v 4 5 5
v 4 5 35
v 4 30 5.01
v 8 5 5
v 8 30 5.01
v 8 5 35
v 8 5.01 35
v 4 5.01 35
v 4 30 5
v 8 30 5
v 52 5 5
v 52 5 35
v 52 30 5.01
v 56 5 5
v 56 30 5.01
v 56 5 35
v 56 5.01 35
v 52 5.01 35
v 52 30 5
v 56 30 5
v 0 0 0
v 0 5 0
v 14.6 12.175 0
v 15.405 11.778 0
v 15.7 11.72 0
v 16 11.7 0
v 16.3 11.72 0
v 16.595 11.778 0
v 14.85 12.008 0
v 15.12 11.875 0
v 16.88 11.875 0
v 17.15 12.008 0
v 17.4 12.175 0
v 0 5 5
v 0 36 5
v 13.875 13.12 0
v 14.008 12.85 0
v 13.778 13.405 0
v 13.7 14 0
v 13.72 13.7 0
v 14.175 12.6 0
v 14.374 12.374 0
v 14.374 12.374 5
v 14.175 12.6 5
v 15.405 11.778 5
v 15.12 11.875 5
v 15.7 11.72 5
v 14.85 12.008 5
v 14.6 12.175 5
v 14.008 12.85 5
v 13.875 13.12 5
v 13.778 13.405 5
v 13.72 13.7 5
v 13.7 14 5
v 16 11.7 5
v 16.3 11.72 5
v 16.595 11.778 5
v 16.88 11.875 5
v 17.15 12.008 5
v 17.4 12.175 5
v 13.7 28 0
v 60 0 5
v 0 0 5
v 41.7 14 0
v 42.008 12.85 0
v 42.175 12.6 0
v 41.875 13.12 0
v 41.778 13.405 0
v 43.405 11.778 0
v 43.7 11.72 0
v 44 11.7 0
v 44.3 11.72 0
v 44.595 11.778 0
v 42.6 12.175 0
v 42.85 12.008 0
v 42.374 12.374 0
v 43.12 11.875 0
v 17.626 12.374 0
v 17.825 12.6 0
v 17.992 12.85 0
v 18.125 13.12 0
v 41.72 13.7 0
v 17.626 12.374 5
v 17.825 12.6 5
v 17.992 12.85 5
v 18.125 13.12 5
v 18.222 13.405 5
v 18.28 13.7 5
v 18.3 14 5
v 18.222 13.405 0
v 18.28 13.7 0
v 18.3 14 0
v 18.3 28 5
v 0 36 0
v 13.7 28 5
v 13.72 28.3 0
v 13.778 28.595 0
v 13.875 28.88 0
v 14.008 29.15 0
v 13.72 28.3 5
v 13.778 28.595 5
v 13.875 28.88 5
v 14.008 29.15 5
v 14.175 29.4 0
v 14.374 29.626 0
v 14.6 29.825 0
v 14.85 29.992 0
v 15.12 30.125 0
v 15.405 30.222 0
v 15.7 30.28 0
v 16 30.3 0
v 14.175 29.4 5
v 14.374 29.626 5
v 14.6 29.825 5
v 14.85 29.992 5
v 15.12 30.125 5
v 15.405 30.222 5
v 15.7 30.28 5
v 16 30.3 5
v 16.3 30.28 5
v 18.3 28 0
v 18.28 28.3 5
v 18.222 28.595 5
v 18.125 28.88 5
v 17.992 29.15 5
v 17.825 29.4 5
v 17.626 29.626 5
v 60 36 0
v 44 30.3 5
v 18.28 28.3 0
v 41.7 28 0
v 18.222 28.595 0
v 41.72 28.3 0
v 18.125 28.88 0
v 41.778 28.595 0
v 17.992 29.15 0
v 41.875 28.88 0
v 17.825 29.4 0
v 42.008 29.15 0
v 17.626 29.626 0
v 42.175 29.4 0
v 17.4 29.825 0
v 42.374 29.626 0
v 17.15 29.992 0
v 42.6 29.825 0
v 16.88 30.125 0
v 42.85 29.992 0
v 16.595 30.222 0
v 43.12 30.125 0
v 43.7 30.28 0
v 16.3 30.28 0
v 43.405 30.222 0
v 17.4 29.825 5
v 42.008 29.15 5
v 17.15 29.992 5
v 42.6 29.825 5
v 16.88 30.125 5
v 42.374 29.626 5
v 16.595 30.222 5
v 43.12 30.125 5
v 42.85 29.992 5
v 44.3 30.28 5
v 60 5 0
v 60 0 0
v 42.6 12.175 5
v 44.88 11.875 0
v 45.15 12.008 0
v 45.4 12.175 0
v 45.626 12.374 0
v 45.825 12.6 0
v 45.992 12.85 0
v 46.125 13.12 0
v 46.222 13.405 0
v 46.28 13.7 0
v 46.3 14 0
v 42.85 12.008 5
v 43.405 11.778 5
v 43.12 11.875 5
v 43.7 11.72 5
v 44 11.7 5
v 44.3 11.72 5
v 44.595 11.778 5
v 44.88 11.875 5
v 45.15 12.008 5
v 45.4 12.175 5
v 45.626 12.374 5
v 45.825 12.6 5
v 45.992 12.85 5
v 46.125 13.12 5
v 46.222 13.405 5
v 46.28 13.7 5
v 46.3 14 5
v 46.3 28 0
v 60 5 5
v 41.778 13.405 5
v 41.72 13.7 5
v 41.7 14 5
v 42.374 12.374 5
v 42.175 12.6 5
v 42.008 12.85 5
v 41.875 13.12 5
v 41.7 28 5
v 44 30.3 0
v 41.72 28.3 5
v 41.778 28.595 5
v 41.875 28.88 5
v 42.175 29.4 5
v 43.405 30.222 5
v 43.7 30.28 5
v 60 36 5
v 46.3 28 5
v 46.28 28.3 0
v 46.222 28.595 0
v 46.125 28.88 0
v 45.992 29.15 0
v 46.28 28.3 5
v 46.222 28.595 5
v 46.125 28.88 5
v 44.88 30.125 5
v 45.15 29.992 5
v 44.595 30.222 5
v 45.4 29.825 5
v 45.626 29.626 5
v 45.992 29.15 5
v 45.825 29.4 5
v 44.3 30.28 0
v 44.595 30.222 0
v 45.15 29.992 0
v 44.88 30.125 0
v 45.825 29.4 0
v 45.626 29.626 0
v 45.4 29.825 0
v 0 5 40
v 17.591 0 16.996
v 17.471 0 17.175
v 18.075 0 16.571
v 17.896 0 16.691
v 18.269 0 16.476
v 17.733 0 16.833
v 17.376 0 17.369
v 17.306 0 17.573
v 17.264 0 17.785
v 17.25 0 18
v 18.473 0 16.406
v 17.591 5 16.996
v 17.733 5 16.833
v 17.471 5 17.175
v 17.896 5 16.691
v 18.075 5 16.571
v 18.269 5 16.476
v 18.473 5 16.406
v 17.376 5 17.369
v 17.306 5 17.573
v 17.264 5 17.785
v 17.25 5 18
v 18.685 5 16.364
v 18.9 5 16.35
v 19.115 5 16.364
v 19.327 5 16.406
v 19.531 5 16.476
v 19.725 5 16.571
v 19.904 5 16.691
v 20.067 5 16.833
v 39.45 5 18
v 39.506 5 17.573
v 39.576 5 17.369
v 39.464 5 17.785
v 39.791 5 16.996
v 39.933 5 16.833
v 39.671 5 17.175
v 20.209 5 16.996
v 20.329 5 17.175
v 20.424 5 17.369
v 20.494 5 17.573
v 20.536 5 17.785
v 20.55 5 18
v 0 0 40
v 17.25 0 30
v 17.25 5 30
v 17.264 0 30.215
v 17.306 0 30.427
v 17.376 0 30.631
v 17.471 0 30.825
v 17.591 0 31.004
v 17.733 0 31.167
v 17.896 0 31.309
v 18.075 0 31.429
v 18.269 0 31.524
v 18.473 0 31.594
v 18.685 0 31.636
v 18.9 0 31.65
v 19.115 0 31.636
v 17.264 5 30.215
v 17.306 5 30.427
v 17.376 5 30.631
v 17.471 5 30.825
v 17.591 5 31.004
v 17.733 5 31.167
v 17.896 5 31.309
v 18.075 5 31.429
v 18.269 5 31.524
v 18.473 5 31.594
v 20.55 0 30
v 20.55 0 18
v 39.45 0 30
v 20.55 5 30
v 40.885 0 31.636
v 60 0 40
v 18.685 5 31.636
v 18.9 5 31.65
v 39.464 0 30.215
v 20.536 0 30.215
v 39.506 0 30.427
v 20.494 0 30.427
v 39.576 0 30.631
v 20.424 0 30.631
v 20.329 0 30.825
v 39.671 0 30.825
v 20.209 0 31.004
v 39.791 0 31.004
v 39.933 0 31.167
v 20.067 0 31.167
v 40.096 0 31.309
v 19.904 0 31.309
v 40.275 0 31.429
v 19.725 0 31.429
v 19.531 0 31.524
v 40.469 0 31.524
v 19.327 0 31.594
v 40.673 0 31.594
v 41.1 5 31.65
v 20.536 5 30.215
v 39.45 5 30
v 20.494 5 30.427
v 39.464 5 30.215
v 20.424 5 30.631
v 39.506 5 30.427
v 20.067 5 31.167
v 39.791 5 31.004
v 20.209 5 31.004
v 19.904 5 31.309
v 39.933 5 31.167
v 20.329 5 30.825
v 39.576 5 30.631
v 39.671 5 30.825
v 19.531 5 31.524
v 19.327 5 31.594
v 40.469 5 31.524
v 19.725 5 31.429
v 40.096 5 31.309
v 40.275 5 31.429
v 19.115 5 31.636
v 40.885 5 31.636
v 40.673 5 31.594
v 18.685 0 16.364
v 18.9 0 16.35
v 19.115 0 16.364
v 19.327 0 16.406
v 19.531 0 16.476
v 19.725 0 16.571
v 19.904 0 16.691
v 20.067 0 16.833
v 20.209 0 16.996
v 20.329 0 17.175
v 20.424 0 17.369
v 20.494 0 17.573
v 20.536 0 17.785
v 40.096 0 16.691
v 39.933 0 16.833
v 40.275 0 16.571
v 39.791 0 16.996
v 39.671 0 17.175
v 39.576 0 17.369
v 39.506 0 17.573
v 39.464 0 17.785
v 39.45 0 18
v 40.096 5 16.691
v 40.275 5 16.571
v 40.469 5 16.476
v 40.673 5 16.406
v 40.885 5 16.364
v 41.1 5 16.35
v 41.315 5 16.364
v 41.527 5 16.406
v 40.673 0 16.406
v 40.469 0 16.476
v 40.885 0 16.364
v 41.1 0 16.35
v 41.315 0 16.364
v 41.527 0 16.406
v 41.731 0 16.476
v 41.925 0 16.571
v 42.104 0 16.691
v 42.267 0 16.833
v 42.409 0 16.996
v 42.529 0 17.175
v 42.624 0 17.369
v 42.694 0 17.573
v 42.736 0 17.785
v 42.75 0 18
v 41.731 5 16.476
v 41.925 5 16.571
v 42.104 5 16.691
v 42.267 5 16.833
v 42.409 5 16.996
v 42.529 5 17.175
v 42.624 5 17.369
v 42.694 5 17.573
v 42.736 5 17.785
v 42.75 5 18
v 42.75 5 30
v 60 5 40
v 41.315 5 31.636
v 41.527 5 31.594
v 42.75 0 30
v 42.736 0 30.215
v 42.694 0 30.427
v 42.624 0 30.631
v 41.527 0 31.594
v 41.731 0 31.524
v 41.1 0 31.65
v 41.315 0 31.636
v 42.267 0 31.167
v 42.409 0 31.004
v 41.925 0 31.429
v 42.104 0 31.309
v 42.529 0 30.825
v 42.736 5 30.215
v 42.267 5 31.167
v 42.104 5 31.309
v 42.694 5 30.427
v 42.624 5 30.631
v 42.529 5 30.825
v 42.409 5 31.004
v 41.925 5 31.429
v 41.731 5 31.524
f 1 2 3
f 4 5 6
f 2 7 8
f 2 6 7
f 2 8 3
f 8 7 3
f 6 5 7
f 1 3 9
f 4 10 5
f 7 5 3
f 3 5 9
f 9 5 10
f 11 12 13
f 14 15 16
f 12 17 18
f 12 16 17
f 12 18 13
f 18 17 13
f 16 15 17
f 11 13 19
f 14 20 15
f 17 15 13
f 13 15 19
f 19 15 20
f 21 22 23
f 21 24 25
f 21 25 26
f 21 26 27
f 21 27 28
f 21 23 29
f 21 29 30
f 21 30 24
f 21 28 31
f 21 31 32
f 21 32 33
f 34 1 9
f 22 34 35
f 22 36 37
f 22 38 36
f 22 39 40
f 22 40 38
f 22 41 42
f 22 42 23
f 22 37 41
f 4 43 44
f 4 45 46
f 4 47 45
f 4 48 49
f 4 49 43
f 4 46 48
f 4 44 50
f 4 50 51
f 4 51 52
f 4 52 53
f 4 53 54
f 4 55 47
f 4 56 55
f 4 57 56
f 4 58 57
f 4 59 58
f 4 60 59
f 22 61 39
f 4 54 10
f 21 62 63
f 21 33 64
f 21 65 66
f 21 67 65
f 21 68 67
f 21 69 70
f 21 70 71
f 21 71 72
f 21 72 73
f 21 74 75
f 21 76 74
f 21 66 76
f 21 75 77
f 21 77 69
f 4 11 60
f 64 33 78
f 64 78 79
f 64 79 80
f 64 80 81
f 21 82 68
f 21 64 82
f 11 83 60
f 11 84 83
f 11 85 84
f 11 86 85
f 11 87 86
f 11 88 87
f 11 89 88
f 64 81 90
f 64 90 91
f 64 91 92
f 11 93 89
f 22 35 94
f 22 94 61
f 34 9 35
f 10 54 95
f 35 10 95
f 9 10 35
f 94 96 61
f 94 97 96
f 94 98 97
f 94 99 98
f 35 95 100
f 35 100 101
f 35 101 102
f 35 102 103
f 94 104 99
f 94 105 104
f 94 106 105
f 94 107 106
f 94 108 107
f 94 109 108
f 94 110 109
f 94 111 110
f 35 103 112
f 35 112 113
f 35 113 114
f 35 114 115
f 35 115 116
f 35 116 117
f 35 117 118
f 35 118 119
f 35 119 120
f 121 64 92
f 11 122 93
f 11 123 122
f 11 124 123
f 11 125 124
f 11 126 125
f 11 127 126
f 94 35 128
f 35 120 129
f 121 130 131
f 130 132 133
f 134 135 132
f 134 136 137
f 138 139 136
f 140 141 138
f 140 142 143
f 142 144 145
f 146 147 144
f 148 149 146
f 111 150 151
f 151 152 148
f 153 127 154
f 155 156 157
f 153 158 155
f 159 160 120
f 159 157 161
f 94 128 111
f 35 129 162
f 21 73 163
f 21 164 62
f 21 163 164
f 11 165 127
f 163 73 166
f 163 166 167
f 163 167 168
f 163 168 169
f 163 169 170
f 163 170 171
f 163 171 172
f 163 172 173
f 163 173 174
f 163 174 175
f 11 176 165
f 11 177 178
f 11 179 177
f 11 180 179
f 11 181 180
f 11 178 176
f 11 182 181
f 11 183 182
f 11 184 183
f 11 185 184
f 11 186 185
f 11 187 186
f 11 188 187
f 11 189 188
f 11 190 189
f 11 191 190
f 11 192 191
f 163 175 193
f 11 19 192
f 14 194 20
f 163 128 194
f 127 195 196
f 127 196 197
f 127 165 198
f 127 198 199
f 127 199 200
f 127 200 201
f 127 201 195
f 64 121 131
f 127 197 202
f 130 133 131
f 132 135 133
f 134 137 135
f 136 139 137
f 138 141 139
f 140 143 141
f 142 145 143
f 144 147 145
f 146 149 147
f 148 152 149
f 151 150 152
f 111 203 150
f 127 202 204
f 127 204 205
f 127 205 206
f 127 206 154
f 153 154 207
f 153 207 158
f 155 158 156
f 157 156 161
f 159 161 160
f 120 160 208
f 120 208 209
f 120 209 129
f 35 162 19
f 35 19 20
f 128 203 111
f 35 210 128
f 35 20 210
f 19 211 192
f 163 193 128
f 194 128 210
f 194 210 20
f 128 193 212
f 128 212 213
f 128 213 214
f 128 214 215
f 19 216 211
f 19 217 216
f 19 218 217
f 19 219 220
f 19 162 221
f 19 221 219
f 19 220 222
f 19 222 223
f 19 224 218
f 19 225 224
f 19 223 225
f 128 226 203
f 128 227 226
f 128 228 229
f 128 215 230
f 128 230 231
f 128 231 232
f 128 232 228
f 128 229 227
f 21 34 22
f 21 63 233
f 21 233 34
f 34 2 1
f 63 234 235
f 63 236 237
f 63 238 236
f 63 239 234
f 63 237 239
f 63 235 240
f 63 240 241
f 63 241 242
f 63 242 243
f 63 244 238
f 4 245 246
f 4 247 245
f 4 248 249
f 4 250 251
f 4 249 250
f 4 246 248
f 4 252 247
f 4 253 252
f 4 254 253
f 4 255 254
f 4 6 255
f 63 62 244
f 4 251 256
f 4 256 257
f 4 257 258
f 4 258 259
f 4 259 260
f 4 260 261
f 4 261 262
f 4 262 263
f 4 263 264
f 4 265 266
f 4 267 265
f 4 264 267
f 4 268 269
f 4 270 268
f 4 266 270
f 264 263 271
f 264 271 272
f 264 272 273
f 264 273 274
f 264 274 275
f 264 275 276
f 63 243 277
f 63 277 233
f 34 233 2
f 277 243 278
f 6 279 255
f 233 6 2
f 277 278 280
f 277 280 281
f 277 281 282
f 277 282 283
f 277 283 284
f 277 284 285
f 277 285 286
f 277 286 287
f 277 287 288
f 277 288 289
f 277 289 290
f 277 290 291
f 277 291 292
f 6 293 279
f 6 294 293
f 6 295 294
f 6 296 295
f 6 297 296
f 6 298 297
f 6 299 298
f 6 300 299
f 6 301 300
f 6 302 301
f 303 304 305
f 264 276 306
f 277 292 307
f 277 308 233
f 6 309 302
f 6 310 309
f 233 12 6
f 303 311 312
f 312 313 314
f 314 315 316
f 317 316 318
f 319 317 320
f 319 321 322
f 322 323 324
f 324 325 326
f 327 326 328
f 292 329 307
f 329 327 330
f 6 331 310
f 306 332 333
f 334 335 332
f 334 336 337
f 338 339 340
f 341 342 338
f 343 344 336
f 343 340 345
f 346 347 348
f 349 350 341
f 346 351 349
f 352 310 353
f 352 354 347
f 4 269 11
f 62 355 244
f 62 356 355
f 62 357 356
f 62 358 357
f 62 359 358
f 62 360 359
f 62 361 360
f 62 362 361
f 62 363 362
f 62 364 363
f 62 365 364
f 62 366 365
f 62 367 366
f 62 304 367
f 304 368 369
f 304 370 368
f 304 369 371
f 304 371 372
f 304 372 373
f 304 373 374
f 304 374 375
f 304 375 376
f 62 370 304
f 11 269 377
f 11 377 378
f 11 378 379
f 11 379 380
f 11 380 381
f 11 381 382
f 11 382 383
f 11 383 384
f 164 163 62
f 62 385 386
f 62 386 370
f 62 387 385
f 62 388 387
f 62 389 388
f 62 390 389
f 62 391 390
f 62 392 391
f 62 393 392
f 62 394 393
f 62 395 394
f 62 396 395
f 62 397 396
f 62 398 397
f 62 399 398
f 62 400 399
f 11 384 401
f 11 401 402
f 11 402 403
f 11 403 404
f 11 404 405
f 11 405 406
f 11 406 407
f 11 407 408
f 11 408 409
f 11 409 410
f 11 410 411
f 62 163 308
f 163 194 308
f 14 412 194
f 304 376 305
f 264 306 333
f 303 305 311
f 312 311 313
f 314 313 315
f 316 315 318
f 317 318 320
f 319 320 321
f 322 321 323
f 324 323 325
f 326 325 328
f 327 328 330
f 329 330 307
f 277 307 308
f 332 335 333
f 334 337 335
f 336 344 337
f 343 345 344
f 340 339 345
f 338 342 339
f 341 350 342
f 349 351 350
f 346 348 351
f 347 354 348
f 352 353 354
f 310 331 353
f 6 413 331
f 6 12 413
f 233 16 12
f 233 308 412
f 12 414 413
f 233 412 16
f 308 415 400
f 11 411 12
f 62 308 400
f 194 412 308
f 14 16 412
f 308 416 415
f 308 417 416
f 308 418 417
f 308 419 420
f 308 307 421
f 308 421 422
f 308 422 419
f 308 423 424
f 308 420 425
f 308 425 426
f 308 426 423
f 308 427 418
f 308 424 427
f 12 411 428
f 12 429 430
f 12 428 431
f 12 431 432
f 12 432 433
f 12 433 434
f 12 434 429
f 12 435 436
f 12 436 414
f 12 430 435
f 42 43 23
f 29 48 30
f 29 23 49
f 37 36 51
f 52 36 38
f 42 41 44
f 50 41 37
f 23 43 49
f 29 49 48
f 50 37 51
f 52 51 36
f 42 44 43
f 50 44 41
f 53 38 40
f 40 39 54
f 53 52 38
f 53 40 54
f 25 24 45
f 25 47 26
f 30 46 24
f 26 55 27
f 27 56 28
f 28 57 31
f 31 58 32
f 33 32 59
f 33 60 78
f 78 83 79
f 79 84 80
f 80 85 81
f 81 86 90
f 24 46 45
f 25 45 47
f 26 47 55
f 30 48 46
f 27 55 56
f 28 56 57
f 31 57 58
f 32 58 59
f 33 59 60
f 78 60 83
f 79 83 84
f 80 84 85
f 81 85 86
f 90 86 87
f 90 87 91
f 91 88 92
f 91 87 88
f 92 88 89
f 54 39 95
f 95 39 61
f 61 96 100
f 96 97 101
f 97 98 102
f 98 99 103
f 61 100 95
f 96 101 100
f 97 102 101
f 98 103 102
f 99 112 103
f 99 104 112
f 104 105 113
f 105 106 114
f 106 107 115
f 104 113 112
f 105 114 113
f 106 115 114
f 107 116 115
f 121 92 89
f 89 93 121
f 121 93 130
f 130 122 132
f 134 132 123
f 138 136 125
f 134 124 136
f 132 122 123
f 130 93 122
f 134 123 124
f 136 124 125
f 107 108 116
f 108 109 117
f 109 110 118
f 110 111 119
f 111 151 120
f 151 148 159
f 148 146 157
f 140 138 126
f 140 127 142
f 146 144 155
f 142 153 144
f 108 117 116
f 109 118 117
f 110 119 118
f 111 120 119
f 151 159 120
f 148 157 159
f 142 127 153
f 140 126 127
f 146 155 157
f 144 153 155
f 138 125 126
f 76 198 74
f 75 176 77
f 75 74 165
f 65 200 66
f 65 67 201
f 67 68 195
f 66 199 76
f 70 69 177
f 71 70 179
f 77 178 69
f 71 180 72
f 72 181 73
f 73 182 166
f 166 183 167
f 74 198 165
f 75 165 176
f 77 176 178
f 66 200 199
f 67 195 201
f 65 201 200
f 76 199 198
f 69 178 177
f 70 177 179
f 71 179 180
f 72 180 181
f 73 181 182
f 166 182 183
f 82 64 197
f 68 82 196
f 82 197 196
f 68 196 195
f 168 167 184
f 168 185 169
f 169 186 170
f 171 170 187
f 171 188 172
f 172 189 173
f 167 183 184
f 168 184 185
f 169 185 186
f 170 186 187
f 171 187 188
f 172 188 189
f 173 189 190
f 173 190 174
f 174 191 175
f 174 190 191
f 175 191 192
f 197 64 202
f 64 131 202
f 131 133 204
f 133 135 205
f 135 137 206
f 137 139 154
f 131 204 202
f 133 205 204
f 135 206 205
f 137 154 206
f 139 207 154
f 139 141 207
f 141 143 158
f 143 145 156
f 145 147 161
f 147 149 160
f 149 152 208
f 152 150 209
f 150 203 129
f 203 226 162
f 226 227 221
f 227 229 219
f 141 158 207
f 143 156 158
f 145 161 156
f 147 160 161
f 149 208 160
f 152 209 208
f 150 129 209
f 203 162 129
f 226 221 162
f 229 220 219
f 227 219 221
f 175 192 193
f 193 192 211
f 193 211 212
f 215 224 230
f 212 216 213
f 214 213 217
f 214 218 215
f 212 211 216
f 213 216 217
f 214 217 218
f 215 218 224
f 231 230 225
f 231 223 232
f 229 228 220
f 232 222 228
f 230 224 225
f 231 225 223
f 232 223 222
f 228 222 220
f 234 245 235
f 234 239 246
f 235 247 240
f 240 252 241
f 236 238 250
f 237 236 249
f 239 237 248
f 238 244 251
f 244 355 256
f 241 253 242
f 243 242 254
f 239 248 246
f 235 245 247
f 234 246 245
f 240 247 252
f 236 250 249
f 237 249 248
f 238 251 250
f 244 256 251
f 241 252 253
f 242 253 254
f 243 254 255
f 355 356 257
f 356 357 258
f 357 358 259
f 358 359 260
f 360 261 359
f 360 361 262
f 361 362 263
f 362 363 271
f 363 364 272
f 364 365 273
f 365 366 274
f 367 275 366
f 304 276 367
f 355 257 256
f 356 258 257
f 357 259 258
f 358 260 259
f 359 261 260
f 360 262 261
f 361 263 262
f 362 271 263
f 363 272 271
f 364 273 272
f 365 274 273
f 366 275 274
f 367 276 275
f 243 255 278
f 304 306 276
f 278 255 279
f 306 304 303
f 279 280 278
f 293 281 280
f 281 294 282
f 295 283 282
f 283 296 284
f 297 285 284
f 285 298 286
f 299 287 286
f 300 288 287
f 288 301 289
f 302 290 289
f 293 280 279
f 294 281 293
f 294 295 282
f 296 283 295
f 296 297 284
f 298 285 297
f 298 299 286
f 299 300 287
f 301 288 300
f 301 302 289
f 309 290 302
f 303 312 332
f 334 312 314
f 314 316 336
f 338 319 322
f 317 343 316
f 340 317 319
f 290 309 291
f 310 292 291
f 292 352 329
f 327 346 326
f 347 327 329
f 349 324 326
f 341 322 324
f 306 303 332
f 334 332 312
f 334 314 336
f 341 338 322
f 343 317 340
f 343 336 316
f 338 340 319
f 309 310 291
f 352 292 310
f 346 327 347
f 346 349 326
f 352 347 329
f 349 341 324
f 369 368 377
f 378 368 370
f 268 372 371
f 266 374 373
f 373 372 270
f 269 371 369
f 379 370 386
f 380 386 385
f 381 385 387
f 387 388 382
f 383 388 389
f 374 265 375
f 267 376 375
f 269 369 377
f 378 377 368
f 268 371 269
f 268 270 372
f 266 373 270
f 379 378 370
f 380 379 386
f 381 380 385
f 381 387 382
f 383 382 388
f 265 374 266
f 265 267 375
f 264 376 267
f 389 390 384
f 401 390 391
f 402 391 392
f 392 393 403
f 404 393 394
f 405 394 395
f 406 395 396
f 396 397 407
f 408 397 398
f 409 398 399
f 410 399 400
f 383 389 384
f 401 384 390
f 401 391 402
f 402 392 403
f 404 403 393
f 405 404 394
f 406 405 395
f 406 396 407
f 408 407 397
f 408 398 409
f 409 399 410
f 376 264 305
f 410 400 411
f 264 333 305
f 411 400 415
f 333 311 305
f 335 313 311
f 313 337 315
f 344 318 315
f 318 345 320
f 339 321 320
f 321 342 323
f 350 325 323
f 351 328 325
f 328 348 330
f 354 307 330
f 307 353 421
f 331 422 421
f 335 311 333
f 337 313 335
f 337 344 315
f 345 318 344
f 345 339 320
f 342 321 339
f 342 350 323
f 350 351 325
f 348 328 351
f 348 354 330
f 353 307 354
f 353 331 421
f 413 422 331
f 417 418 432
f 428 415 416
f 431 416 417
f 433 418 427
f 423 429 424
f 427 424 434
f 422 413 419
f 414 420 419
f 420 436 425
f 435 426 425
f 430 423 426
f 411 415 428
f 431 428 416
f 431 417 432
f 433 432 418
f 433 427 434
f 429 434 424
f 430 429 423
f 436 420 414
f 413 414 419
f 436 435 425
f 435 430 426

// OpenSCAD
// Adjustable bracket for a V-15 style 15 A roller-lever micro switch
// (body ~49 x 28 x 17 mm, two M3 holes 22.2 mm apart).  Two of these make the
// seat platform's end-of-travel limit switches (UP and DOWN) in the hardwired
// actuator circuit; a third, separate switch contact can be wired to Falcon
// Command so the game can READ "seat up".  Screws to the 2x4 frame with two
// #8 wood screws in slots (+-10 mm adjustment).
include <../lib/ff_lib.scad>
PART = "bracket";
HOLE_PITCH = 22.2;
difference() {
  union() {
    cube([60, 36, 5]);                       // base on the 2x4
    translate([0, 0, 0]) cube([60, 5, 40]);  // switch plate
    for (x = [4, 52]) translate([x, 5, 5]) rotate([0, 0, 0]) hull() { cube([4, 0.01, 30]); cube([4, 25, 0.01]); }
  }
  // wood screw slots (along y = adjustment toward the platform)
  for (x = [16, 44]) translate([x, 0, -1]) hull() for (y = [14, 28]) translate([0, y, 0]) cylinder(d = 4.6, h = 10);
  // switch holes, slotted along z for fine adjustment
  for (x = [30 - HOLE_PITCH/2, 30 + HOLE_PITCH/2]) translate([x, -1, 0]) rotate([-90, 0, 0])
    hull() for (z = [-18, -30]) translate([0, z, 0]) cylinder(d = 3.3, h = 10);
}
